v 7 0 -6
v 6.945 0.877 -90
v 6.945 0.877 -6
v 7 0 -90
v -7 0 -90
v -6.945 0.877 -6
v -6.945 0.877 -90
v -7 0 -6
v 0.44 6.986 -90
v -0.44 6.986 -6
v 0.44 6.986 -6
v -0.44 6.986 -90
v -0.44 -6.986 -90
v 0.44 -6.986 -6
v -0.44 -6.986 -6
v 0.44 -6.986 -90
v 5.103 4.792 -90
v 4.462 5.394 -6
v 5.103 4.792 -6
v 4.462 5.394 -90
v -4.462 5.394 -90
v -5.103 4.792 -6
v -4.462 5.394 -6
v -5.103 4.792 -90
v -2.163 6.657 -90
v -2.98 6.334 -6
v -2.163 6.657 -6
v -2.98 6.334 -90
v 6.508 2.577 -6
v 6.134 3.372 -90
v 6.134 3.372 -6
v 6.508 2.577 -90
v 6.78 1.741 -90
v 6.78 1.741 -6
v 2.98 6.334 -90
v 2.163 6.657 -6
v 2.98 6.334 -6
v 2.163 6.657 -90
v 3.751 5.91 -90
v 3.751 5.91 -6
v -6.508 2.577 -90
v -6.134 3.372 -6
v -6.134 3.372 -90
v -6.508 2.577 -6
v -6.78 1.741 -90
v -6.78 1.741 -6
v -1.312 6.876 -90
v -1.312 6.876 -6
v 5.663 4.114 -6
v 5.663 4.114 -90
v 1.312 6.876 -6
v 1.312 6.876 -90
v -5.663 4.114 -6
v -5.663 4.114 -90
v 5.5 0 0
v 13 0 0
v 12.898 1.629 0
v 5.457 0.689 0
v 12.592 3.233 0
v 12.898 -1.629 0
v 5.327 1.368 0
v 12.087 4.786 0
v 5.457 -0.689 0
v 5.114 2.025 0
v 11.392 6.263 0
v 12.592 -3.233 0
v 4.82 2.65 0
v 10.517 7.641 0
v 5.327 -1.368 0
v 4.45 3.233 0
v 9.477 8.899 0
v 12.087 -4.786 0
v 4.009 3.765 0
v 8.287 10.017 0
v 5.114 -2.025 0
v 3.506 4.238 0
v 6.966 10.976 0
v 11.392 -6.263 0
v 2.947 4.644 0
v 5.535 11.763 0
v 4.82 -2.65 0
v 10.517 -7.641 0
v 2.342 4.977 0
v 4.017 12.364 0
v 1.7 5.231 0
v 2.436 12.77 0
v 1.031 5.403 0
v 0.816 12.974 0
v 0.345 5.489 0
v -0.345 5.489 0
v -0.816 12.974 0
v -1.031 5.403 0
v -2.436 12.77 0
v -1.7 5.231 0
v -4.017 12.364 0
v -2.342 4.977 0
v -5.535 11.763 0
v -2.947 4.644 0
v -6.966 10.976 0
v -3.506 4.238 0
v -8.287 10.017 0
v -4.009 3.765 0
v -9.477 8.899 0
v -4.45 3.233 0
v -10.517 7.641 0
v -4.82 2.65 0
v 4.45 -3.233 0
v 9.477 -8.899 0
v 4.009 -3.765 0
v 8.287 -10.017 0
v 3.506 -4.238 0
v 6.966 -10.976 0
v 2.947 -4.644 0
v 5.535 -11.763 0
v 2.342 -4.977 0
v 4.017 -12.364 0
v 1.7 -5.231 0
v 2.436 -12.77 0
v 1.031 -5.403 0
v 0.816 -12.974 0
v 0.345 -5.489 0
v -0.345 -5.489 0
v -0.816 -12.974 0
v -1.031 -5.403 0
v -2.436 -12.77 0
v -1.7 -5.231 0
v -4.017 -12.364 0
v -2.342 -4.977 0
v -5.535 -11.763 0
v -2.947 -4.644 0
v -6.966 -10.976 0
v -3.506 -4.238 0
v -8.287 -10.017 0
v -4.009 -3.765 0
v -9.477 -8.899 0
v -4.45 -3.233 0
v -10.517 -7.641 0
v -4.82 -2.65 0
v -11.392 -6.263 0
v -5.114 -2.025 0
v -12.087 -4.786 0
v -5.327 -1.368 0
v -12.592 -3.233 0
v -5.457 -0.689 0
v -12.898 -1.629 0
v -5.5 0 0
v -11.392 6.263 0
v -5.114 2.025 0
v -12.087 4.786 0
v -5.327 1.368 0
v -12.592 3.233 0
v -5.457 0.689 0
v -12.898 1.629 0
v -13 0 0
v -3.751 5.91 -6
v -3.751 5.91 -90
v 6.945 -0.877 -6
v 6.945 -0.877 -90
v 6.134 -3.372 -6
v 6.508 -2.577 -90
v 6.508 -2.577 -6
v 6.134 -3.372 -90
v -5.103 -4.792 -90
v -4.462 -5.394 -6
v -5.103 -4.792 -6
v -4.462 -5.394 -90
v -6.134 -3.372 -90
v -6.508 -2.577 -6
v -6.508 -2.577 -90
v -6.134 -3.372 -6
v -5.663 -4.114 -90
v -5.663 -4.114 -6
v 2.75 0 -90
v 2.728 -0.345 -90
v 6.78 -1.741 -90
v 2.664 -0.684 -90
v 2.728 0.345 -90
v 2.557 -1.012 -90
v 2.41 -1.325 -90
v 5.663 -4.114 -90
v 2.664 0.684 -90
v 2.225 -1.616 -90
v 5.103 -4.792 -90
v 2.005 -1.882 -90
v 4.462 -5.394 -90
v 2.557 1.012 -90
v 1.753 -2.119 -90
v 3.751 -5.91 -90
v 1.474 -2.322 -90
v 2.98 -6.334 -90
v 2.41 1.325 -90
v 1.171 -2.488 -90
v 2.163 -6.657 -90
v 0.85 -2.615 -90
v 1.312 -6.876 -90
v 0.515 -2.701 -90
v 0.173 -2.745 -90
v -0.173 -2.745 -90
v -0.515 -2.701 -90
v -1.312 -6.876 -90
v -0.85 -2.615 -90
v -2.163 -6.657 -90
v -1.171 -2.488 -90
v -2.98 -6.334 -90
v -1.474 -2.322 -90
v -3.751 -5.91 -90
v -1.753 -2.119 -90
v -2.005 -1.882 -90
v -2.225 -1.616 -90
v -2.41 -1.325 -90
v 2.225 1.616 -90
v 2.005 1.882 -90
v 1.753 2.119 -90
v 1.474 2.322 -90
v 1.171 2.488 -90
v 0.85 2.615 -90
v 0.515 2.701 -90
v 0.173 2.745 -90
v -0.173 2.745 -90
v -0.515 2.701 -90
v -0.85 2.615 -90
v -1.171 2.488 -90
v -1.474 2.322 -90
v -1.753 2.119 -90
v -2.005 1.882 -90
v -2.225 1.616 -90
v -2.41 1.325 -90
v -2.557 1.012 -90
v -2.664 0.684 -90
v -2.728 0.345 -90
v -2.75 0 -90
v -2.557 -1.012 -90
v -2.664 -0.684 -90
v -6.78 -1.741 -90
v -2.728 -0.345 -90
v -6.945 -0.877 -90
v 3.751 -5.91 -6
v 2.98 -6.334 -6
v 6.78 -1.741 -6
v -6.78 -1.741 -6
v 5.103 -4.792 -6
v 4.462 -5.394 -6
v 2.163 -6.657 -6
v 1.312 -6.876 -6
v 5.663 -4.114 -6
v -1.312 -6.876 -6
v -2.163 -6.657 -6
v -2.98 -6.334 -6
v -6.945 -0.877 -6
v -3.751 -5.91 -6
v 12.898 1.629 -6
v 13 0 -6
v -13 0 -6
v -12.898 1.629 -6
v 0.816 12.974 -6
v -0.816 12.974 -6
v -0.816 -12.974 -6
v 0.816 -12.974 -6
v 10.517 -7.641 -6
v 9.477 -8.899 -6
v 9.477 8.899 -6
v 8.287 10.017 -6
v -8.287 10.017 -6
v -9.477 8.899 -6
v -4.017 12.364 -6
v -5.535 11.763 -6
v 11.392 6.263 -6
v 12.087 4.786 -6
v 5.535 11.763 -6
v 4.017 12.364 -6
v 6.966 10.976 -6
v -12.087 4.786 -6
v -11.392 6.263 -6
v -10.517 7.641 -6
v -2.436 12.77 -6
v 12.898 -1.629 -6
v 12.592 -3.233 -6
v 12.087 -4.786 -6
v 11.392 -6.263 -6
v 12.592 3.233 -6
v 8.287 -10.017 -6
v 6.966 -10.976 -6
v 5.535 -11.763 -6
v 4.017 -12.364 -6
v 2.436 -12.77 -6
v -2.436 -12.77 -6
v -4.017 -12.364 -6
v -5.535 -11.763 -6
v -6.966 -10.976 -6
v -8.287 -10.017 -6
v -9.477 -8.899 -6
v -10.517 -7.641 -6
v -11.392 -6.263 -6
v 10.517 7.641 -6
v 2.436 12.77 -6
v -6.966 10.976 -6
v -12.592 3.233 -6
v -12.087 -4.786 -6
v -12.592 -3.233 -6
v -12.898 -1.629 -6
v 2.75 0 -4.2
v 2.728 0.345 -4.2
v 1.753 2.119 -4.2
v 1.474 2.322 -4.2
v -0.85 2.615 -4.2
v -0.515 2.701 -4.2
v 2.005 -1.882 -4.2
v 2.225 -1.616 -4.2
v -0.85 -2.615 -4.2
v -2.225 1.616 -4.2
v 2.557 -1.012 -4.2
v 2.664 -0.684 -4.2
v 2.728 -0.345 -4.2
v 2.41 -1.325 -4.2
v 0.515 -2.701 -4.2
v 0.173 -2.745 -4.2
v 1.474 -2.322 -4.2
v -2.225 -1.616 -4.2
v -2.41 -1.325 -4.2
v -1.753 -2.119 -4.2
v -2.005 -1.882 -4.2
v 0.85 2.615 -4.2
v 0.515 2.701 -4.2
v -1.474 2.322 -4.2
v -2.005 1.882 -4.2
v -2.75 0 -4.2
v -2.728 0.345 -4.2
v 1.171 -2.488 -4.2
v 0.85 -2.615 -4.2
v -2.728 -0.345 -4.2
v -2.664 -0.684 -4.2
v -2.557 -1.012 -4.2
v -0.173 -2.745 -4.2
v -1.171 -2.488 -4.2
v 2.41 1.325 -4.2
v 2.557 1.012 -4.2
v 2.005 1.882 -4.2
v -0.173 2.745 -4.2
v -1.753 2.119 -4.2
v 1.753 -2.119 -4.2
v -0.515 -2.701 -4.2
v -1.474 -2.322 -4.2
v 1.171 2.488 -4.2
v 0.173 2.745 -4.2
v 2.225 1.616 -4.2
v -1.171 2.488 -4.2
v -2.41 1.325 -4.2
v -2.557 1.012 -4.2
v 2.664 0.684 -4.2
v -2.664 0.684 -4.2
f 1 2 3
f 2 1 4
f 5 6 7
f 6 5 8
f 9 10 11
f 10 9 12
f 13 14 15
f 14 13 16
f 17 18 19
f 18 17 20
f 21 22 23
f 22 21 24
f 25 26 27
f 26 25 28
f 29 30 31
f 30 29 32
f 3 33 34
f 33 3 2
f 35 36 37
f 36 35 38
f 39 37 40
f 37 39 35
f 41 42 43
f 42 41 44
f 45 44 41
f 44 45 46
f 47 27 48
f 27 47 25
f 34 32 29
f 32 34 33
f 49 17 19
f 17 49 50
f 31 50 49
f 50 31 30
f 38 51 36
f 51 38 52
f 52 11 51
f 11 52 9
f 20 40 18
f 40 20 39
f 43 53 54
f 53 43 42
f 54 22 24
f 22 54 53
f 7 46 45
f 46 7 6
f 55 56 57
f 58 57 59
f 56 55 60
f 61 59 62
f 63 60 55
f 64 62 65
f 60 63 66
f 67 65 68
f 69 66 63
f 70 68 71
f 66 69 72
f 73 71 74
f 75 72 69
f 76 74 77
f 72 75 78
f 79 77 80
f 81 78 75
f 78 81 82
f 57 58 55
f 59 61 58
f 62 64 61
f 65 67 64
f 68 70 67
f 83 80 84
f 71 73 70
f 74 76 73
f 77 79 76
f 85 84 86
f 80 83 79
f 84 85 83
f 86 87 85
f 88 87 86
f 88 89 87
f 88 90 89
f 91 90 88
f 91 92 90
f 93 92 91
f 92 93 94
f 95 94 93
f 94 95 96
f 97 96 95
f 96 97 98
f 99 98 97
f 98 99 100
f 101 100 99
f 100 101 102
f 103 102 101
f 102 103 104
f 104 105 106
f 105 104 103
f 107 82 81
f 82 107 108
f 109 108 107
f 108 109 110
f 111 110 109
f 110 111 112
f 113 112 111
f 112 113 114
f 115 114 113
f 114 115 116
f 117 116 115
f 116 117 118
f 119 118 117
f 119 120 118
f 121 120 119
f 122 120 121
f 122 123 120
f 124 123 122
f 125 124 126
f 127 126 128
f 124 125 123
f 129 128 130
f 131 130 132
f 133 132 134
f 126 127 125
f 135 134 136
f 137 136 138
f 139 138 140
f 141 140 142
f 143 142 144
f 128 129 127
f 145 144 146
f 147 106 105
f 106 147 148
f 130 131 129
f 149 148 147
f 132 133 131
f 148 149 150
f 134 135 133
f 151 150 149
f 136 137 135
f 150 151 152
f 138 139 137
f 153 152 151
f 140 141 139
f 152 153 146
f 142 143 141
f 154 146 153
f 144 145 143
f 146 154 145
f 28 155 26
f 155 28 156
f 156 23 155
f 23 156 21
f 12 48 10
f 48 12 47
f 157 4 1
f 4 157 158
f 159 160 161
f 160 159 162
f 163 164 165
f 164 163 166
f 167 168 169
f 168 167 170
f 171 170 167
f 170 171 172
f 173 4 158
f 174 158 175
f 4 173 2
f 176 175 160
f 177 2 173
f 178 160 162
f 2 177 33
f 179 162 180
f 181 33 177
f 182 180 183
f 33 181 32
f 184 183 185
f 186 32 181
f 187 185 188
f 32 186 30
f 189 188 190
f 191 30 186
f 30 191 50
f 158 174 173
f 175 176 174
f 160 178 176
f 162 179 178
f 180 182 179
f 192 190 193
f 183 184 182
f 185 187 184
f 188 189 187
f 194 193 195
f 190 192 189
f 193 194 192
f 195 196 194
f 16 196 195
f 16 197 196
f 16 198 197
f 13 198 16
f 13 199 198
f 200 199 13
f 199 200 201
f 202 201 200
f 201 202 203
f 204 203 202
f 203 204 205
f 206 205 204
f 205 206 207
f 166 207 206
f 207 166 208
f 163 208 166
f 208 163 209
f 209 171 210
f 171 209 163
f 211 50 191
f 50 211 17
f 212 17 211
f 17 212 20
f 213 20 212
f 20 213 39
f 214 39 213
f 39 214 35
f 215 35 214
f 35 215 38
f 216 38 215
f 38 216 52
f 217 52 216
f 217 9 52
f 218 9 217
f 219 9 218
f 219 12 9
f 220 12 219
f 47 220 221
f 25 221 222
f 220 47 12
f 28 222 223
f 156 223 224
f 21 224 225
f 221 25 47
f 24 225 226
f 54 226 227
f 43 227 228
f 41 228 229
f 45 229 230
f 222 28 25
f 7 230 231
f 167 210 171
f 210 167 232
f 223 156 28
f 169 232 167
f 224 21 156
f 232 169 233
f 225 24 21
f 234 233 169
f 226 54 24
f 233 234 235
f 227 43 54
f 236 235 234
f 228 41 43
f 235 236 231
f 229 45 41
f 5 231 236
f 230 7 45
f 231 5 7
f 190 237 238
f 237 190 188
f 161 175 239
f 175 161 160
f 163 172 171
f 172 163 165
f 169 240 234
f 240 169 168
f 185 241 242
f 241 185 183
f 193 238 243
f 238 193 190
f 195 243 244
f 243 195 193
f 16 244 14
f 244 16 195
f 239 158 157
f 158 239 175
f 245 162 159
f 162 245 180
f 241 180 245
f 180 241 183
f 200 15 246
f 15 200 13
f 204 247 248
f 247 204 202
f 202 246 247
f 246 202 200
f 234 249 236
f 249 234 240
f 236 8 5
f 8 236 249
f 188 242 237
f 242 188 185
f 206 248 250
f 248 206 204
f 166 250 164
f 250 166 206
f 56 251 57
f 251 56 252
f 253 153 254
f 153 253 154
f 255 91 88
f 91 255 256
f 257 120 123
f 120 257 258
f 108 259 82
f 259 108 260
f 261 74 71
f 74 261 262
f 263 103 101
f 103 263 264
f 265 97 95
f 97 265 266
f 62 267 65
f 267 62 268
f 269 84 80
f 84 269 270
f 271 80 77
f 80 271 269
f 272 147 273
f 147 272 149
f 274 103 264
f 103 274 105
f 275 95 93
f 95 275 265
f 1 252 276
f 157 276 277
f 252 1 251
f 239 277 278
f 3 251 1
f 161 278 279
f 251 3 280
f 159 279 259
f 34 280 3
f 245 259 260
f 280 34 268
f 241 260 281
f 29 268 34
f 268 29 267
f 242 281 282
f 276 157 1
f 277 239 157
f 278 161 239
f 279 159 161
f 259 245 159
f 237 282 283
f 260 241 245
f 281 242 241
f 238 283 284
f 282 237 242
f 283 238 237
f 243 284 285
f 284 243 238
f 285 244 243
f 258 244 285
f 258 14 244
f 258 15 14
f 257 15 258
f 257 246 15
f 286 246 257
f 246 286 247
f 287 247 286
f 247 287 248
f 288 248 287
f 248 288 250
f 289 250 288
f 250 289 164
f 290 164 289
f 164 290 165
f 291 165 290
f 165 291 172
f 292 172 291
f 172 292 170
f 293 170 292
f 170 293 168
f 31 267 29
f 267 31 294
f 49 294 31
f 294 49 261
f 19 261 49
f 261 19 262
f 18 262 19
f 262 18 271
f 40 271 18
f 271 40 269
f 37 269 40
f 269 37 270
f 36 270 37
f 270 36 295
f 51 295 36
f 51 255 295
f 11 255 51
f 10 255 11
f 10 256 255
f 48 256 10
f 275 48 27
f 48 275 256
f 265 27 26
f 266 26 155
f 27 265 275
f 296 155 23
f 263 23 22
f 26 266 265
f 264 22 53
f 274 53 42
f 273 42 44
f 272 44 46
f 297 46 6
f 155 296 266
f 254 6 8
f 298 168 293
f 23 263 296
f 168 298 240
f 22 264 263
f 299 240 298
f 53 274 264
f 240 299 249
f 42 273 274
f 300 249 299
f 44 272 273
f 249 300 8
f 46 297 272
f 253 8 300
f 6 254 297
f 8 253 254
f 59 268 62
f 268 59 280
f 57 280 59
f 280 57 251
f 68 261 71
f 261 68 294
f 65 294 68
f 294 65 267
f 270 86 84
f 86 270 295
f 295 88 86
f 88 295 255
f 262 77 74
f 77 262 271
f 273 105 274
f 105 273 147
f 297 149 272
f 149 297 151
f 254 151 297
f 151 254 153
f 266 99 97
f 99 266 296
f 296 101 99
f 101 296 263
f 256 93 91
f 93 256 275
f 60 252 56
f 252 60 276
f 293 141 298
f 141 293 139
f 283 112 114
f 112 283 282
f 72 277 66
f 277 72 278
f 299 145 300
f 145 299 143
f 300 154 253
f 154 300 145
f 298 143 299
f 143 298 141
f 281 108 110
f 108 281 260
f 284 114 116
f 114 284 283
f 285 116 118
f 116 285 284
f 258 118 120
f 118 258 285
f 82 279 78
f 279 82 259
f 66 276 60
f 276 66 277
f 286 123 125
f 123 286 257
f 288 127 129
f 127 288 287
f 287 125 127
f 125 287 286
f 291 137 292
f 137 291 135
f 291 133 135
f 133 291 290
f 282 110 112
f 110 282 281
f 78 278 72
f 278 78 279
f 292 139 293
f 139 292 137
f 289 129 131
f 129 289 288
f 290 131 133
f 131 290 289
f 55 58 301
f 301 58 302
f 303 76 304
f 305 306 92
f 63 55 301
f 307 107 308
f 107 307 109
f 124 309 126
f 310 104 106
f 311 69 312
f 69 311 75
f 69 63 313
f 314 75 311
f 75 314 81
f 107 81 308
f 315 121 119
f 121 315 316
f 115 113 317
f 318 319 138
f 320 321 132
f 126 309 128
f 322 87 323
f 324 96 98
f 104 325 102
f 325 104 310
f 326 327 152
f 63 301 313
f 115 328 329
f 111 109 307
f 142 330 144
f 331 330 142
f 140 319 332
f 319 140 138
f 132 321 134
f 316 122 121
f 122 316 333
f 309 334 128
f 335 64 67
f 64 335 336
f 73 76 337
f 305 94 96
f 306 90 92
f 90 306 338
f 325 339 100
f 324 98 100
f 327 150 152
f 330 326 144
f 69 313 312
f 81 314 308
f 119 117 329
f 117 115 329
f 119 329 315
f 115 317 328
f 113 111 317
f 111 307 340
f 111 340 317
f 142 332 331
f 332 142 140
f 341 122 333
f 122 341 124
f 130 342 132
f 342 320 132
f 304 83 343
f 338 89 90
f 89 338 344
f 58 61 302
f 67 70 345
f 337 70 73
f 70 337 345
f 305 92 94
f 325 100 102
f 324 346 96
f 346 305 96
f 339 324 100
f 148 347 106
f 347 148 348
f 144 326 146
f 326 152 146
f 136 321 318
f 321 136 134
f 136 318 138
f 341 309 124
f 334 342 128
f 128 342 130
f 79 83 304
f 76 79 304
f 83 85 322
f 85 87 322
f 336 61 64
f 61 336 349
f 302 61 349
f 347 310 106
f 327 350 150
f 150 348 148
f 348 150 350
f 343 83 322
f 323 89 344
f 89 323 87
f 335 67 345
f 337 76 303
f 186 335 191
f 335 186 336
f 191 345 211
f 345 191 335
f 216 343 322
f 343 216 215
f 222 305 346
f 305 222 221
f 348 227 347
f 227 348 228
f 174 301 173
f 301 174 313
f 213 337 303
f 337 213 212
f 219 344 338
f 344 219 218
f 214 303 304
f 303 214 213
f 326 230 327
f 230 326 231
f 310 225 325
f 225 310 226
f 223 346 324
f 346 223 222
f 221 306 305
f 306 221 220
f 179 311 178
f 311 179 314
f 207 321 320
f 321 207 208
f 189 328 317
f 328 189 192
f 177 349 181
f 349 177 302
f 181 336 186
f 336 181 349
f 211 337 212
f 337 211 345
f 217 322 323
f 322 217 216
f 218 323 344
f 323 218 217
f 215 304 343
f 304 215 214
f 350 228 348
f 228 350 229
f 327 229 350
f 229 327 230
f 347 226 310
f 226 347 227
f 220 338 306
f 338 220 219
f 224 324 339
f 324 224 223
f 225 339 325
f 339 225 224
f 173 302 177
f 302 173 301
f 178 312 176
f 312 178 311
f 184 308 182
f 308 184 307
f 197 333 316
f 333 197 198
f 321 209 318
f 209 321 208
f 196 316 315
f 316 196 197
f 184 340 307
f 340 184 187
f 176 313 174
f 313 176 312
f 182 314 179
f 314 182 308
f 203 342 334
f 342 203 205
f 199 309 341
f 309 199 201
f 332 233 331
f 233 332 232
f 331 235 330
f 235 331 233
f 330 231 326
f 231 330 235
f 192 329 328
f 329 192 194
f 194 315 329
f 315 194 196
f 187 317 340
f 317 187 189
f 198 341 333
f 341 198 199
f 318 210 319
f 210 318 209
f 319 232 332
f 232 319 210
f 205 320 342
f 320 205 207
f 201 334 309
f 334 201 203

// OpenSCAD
$fn = 50;


difference() {
	union() {
		translate(v = [0, 0, -90.0000000000]) {
			cylinder(h = 90, r = 7.0000000000);
		}
		translate(v = [0, 0, -6.0000000000]) {
			cylinder(h = 6, r = 13.0000000000);
		}
	}
	union() {
		translate(v = [0, 0, 0]) {
			rotate(a = [0, 0, 0]) {
				difference() {
					union() {
						#translate(v = [0, 0, -90.0000000000]) {
							cylinder(h = 90, r = 2.2500000000);
						}
						#translate(v = [0, 0, -4.2000000000]) {
							cylinder(h = 4.2000000000, r1 = 2.7500000000, r2 = 5.5000000000);
						}
						#translate(v = [0, 0, -90.0000000000]) {
							cylinder(h = 90, r = 2.7500000000);
						}
						#translate(v = [0, 0, -90.0000000000]) {
							cylinder(h = 90, r = 2.2500000000);
						}
					}
					union();
				}
			}
		}
	}
}
